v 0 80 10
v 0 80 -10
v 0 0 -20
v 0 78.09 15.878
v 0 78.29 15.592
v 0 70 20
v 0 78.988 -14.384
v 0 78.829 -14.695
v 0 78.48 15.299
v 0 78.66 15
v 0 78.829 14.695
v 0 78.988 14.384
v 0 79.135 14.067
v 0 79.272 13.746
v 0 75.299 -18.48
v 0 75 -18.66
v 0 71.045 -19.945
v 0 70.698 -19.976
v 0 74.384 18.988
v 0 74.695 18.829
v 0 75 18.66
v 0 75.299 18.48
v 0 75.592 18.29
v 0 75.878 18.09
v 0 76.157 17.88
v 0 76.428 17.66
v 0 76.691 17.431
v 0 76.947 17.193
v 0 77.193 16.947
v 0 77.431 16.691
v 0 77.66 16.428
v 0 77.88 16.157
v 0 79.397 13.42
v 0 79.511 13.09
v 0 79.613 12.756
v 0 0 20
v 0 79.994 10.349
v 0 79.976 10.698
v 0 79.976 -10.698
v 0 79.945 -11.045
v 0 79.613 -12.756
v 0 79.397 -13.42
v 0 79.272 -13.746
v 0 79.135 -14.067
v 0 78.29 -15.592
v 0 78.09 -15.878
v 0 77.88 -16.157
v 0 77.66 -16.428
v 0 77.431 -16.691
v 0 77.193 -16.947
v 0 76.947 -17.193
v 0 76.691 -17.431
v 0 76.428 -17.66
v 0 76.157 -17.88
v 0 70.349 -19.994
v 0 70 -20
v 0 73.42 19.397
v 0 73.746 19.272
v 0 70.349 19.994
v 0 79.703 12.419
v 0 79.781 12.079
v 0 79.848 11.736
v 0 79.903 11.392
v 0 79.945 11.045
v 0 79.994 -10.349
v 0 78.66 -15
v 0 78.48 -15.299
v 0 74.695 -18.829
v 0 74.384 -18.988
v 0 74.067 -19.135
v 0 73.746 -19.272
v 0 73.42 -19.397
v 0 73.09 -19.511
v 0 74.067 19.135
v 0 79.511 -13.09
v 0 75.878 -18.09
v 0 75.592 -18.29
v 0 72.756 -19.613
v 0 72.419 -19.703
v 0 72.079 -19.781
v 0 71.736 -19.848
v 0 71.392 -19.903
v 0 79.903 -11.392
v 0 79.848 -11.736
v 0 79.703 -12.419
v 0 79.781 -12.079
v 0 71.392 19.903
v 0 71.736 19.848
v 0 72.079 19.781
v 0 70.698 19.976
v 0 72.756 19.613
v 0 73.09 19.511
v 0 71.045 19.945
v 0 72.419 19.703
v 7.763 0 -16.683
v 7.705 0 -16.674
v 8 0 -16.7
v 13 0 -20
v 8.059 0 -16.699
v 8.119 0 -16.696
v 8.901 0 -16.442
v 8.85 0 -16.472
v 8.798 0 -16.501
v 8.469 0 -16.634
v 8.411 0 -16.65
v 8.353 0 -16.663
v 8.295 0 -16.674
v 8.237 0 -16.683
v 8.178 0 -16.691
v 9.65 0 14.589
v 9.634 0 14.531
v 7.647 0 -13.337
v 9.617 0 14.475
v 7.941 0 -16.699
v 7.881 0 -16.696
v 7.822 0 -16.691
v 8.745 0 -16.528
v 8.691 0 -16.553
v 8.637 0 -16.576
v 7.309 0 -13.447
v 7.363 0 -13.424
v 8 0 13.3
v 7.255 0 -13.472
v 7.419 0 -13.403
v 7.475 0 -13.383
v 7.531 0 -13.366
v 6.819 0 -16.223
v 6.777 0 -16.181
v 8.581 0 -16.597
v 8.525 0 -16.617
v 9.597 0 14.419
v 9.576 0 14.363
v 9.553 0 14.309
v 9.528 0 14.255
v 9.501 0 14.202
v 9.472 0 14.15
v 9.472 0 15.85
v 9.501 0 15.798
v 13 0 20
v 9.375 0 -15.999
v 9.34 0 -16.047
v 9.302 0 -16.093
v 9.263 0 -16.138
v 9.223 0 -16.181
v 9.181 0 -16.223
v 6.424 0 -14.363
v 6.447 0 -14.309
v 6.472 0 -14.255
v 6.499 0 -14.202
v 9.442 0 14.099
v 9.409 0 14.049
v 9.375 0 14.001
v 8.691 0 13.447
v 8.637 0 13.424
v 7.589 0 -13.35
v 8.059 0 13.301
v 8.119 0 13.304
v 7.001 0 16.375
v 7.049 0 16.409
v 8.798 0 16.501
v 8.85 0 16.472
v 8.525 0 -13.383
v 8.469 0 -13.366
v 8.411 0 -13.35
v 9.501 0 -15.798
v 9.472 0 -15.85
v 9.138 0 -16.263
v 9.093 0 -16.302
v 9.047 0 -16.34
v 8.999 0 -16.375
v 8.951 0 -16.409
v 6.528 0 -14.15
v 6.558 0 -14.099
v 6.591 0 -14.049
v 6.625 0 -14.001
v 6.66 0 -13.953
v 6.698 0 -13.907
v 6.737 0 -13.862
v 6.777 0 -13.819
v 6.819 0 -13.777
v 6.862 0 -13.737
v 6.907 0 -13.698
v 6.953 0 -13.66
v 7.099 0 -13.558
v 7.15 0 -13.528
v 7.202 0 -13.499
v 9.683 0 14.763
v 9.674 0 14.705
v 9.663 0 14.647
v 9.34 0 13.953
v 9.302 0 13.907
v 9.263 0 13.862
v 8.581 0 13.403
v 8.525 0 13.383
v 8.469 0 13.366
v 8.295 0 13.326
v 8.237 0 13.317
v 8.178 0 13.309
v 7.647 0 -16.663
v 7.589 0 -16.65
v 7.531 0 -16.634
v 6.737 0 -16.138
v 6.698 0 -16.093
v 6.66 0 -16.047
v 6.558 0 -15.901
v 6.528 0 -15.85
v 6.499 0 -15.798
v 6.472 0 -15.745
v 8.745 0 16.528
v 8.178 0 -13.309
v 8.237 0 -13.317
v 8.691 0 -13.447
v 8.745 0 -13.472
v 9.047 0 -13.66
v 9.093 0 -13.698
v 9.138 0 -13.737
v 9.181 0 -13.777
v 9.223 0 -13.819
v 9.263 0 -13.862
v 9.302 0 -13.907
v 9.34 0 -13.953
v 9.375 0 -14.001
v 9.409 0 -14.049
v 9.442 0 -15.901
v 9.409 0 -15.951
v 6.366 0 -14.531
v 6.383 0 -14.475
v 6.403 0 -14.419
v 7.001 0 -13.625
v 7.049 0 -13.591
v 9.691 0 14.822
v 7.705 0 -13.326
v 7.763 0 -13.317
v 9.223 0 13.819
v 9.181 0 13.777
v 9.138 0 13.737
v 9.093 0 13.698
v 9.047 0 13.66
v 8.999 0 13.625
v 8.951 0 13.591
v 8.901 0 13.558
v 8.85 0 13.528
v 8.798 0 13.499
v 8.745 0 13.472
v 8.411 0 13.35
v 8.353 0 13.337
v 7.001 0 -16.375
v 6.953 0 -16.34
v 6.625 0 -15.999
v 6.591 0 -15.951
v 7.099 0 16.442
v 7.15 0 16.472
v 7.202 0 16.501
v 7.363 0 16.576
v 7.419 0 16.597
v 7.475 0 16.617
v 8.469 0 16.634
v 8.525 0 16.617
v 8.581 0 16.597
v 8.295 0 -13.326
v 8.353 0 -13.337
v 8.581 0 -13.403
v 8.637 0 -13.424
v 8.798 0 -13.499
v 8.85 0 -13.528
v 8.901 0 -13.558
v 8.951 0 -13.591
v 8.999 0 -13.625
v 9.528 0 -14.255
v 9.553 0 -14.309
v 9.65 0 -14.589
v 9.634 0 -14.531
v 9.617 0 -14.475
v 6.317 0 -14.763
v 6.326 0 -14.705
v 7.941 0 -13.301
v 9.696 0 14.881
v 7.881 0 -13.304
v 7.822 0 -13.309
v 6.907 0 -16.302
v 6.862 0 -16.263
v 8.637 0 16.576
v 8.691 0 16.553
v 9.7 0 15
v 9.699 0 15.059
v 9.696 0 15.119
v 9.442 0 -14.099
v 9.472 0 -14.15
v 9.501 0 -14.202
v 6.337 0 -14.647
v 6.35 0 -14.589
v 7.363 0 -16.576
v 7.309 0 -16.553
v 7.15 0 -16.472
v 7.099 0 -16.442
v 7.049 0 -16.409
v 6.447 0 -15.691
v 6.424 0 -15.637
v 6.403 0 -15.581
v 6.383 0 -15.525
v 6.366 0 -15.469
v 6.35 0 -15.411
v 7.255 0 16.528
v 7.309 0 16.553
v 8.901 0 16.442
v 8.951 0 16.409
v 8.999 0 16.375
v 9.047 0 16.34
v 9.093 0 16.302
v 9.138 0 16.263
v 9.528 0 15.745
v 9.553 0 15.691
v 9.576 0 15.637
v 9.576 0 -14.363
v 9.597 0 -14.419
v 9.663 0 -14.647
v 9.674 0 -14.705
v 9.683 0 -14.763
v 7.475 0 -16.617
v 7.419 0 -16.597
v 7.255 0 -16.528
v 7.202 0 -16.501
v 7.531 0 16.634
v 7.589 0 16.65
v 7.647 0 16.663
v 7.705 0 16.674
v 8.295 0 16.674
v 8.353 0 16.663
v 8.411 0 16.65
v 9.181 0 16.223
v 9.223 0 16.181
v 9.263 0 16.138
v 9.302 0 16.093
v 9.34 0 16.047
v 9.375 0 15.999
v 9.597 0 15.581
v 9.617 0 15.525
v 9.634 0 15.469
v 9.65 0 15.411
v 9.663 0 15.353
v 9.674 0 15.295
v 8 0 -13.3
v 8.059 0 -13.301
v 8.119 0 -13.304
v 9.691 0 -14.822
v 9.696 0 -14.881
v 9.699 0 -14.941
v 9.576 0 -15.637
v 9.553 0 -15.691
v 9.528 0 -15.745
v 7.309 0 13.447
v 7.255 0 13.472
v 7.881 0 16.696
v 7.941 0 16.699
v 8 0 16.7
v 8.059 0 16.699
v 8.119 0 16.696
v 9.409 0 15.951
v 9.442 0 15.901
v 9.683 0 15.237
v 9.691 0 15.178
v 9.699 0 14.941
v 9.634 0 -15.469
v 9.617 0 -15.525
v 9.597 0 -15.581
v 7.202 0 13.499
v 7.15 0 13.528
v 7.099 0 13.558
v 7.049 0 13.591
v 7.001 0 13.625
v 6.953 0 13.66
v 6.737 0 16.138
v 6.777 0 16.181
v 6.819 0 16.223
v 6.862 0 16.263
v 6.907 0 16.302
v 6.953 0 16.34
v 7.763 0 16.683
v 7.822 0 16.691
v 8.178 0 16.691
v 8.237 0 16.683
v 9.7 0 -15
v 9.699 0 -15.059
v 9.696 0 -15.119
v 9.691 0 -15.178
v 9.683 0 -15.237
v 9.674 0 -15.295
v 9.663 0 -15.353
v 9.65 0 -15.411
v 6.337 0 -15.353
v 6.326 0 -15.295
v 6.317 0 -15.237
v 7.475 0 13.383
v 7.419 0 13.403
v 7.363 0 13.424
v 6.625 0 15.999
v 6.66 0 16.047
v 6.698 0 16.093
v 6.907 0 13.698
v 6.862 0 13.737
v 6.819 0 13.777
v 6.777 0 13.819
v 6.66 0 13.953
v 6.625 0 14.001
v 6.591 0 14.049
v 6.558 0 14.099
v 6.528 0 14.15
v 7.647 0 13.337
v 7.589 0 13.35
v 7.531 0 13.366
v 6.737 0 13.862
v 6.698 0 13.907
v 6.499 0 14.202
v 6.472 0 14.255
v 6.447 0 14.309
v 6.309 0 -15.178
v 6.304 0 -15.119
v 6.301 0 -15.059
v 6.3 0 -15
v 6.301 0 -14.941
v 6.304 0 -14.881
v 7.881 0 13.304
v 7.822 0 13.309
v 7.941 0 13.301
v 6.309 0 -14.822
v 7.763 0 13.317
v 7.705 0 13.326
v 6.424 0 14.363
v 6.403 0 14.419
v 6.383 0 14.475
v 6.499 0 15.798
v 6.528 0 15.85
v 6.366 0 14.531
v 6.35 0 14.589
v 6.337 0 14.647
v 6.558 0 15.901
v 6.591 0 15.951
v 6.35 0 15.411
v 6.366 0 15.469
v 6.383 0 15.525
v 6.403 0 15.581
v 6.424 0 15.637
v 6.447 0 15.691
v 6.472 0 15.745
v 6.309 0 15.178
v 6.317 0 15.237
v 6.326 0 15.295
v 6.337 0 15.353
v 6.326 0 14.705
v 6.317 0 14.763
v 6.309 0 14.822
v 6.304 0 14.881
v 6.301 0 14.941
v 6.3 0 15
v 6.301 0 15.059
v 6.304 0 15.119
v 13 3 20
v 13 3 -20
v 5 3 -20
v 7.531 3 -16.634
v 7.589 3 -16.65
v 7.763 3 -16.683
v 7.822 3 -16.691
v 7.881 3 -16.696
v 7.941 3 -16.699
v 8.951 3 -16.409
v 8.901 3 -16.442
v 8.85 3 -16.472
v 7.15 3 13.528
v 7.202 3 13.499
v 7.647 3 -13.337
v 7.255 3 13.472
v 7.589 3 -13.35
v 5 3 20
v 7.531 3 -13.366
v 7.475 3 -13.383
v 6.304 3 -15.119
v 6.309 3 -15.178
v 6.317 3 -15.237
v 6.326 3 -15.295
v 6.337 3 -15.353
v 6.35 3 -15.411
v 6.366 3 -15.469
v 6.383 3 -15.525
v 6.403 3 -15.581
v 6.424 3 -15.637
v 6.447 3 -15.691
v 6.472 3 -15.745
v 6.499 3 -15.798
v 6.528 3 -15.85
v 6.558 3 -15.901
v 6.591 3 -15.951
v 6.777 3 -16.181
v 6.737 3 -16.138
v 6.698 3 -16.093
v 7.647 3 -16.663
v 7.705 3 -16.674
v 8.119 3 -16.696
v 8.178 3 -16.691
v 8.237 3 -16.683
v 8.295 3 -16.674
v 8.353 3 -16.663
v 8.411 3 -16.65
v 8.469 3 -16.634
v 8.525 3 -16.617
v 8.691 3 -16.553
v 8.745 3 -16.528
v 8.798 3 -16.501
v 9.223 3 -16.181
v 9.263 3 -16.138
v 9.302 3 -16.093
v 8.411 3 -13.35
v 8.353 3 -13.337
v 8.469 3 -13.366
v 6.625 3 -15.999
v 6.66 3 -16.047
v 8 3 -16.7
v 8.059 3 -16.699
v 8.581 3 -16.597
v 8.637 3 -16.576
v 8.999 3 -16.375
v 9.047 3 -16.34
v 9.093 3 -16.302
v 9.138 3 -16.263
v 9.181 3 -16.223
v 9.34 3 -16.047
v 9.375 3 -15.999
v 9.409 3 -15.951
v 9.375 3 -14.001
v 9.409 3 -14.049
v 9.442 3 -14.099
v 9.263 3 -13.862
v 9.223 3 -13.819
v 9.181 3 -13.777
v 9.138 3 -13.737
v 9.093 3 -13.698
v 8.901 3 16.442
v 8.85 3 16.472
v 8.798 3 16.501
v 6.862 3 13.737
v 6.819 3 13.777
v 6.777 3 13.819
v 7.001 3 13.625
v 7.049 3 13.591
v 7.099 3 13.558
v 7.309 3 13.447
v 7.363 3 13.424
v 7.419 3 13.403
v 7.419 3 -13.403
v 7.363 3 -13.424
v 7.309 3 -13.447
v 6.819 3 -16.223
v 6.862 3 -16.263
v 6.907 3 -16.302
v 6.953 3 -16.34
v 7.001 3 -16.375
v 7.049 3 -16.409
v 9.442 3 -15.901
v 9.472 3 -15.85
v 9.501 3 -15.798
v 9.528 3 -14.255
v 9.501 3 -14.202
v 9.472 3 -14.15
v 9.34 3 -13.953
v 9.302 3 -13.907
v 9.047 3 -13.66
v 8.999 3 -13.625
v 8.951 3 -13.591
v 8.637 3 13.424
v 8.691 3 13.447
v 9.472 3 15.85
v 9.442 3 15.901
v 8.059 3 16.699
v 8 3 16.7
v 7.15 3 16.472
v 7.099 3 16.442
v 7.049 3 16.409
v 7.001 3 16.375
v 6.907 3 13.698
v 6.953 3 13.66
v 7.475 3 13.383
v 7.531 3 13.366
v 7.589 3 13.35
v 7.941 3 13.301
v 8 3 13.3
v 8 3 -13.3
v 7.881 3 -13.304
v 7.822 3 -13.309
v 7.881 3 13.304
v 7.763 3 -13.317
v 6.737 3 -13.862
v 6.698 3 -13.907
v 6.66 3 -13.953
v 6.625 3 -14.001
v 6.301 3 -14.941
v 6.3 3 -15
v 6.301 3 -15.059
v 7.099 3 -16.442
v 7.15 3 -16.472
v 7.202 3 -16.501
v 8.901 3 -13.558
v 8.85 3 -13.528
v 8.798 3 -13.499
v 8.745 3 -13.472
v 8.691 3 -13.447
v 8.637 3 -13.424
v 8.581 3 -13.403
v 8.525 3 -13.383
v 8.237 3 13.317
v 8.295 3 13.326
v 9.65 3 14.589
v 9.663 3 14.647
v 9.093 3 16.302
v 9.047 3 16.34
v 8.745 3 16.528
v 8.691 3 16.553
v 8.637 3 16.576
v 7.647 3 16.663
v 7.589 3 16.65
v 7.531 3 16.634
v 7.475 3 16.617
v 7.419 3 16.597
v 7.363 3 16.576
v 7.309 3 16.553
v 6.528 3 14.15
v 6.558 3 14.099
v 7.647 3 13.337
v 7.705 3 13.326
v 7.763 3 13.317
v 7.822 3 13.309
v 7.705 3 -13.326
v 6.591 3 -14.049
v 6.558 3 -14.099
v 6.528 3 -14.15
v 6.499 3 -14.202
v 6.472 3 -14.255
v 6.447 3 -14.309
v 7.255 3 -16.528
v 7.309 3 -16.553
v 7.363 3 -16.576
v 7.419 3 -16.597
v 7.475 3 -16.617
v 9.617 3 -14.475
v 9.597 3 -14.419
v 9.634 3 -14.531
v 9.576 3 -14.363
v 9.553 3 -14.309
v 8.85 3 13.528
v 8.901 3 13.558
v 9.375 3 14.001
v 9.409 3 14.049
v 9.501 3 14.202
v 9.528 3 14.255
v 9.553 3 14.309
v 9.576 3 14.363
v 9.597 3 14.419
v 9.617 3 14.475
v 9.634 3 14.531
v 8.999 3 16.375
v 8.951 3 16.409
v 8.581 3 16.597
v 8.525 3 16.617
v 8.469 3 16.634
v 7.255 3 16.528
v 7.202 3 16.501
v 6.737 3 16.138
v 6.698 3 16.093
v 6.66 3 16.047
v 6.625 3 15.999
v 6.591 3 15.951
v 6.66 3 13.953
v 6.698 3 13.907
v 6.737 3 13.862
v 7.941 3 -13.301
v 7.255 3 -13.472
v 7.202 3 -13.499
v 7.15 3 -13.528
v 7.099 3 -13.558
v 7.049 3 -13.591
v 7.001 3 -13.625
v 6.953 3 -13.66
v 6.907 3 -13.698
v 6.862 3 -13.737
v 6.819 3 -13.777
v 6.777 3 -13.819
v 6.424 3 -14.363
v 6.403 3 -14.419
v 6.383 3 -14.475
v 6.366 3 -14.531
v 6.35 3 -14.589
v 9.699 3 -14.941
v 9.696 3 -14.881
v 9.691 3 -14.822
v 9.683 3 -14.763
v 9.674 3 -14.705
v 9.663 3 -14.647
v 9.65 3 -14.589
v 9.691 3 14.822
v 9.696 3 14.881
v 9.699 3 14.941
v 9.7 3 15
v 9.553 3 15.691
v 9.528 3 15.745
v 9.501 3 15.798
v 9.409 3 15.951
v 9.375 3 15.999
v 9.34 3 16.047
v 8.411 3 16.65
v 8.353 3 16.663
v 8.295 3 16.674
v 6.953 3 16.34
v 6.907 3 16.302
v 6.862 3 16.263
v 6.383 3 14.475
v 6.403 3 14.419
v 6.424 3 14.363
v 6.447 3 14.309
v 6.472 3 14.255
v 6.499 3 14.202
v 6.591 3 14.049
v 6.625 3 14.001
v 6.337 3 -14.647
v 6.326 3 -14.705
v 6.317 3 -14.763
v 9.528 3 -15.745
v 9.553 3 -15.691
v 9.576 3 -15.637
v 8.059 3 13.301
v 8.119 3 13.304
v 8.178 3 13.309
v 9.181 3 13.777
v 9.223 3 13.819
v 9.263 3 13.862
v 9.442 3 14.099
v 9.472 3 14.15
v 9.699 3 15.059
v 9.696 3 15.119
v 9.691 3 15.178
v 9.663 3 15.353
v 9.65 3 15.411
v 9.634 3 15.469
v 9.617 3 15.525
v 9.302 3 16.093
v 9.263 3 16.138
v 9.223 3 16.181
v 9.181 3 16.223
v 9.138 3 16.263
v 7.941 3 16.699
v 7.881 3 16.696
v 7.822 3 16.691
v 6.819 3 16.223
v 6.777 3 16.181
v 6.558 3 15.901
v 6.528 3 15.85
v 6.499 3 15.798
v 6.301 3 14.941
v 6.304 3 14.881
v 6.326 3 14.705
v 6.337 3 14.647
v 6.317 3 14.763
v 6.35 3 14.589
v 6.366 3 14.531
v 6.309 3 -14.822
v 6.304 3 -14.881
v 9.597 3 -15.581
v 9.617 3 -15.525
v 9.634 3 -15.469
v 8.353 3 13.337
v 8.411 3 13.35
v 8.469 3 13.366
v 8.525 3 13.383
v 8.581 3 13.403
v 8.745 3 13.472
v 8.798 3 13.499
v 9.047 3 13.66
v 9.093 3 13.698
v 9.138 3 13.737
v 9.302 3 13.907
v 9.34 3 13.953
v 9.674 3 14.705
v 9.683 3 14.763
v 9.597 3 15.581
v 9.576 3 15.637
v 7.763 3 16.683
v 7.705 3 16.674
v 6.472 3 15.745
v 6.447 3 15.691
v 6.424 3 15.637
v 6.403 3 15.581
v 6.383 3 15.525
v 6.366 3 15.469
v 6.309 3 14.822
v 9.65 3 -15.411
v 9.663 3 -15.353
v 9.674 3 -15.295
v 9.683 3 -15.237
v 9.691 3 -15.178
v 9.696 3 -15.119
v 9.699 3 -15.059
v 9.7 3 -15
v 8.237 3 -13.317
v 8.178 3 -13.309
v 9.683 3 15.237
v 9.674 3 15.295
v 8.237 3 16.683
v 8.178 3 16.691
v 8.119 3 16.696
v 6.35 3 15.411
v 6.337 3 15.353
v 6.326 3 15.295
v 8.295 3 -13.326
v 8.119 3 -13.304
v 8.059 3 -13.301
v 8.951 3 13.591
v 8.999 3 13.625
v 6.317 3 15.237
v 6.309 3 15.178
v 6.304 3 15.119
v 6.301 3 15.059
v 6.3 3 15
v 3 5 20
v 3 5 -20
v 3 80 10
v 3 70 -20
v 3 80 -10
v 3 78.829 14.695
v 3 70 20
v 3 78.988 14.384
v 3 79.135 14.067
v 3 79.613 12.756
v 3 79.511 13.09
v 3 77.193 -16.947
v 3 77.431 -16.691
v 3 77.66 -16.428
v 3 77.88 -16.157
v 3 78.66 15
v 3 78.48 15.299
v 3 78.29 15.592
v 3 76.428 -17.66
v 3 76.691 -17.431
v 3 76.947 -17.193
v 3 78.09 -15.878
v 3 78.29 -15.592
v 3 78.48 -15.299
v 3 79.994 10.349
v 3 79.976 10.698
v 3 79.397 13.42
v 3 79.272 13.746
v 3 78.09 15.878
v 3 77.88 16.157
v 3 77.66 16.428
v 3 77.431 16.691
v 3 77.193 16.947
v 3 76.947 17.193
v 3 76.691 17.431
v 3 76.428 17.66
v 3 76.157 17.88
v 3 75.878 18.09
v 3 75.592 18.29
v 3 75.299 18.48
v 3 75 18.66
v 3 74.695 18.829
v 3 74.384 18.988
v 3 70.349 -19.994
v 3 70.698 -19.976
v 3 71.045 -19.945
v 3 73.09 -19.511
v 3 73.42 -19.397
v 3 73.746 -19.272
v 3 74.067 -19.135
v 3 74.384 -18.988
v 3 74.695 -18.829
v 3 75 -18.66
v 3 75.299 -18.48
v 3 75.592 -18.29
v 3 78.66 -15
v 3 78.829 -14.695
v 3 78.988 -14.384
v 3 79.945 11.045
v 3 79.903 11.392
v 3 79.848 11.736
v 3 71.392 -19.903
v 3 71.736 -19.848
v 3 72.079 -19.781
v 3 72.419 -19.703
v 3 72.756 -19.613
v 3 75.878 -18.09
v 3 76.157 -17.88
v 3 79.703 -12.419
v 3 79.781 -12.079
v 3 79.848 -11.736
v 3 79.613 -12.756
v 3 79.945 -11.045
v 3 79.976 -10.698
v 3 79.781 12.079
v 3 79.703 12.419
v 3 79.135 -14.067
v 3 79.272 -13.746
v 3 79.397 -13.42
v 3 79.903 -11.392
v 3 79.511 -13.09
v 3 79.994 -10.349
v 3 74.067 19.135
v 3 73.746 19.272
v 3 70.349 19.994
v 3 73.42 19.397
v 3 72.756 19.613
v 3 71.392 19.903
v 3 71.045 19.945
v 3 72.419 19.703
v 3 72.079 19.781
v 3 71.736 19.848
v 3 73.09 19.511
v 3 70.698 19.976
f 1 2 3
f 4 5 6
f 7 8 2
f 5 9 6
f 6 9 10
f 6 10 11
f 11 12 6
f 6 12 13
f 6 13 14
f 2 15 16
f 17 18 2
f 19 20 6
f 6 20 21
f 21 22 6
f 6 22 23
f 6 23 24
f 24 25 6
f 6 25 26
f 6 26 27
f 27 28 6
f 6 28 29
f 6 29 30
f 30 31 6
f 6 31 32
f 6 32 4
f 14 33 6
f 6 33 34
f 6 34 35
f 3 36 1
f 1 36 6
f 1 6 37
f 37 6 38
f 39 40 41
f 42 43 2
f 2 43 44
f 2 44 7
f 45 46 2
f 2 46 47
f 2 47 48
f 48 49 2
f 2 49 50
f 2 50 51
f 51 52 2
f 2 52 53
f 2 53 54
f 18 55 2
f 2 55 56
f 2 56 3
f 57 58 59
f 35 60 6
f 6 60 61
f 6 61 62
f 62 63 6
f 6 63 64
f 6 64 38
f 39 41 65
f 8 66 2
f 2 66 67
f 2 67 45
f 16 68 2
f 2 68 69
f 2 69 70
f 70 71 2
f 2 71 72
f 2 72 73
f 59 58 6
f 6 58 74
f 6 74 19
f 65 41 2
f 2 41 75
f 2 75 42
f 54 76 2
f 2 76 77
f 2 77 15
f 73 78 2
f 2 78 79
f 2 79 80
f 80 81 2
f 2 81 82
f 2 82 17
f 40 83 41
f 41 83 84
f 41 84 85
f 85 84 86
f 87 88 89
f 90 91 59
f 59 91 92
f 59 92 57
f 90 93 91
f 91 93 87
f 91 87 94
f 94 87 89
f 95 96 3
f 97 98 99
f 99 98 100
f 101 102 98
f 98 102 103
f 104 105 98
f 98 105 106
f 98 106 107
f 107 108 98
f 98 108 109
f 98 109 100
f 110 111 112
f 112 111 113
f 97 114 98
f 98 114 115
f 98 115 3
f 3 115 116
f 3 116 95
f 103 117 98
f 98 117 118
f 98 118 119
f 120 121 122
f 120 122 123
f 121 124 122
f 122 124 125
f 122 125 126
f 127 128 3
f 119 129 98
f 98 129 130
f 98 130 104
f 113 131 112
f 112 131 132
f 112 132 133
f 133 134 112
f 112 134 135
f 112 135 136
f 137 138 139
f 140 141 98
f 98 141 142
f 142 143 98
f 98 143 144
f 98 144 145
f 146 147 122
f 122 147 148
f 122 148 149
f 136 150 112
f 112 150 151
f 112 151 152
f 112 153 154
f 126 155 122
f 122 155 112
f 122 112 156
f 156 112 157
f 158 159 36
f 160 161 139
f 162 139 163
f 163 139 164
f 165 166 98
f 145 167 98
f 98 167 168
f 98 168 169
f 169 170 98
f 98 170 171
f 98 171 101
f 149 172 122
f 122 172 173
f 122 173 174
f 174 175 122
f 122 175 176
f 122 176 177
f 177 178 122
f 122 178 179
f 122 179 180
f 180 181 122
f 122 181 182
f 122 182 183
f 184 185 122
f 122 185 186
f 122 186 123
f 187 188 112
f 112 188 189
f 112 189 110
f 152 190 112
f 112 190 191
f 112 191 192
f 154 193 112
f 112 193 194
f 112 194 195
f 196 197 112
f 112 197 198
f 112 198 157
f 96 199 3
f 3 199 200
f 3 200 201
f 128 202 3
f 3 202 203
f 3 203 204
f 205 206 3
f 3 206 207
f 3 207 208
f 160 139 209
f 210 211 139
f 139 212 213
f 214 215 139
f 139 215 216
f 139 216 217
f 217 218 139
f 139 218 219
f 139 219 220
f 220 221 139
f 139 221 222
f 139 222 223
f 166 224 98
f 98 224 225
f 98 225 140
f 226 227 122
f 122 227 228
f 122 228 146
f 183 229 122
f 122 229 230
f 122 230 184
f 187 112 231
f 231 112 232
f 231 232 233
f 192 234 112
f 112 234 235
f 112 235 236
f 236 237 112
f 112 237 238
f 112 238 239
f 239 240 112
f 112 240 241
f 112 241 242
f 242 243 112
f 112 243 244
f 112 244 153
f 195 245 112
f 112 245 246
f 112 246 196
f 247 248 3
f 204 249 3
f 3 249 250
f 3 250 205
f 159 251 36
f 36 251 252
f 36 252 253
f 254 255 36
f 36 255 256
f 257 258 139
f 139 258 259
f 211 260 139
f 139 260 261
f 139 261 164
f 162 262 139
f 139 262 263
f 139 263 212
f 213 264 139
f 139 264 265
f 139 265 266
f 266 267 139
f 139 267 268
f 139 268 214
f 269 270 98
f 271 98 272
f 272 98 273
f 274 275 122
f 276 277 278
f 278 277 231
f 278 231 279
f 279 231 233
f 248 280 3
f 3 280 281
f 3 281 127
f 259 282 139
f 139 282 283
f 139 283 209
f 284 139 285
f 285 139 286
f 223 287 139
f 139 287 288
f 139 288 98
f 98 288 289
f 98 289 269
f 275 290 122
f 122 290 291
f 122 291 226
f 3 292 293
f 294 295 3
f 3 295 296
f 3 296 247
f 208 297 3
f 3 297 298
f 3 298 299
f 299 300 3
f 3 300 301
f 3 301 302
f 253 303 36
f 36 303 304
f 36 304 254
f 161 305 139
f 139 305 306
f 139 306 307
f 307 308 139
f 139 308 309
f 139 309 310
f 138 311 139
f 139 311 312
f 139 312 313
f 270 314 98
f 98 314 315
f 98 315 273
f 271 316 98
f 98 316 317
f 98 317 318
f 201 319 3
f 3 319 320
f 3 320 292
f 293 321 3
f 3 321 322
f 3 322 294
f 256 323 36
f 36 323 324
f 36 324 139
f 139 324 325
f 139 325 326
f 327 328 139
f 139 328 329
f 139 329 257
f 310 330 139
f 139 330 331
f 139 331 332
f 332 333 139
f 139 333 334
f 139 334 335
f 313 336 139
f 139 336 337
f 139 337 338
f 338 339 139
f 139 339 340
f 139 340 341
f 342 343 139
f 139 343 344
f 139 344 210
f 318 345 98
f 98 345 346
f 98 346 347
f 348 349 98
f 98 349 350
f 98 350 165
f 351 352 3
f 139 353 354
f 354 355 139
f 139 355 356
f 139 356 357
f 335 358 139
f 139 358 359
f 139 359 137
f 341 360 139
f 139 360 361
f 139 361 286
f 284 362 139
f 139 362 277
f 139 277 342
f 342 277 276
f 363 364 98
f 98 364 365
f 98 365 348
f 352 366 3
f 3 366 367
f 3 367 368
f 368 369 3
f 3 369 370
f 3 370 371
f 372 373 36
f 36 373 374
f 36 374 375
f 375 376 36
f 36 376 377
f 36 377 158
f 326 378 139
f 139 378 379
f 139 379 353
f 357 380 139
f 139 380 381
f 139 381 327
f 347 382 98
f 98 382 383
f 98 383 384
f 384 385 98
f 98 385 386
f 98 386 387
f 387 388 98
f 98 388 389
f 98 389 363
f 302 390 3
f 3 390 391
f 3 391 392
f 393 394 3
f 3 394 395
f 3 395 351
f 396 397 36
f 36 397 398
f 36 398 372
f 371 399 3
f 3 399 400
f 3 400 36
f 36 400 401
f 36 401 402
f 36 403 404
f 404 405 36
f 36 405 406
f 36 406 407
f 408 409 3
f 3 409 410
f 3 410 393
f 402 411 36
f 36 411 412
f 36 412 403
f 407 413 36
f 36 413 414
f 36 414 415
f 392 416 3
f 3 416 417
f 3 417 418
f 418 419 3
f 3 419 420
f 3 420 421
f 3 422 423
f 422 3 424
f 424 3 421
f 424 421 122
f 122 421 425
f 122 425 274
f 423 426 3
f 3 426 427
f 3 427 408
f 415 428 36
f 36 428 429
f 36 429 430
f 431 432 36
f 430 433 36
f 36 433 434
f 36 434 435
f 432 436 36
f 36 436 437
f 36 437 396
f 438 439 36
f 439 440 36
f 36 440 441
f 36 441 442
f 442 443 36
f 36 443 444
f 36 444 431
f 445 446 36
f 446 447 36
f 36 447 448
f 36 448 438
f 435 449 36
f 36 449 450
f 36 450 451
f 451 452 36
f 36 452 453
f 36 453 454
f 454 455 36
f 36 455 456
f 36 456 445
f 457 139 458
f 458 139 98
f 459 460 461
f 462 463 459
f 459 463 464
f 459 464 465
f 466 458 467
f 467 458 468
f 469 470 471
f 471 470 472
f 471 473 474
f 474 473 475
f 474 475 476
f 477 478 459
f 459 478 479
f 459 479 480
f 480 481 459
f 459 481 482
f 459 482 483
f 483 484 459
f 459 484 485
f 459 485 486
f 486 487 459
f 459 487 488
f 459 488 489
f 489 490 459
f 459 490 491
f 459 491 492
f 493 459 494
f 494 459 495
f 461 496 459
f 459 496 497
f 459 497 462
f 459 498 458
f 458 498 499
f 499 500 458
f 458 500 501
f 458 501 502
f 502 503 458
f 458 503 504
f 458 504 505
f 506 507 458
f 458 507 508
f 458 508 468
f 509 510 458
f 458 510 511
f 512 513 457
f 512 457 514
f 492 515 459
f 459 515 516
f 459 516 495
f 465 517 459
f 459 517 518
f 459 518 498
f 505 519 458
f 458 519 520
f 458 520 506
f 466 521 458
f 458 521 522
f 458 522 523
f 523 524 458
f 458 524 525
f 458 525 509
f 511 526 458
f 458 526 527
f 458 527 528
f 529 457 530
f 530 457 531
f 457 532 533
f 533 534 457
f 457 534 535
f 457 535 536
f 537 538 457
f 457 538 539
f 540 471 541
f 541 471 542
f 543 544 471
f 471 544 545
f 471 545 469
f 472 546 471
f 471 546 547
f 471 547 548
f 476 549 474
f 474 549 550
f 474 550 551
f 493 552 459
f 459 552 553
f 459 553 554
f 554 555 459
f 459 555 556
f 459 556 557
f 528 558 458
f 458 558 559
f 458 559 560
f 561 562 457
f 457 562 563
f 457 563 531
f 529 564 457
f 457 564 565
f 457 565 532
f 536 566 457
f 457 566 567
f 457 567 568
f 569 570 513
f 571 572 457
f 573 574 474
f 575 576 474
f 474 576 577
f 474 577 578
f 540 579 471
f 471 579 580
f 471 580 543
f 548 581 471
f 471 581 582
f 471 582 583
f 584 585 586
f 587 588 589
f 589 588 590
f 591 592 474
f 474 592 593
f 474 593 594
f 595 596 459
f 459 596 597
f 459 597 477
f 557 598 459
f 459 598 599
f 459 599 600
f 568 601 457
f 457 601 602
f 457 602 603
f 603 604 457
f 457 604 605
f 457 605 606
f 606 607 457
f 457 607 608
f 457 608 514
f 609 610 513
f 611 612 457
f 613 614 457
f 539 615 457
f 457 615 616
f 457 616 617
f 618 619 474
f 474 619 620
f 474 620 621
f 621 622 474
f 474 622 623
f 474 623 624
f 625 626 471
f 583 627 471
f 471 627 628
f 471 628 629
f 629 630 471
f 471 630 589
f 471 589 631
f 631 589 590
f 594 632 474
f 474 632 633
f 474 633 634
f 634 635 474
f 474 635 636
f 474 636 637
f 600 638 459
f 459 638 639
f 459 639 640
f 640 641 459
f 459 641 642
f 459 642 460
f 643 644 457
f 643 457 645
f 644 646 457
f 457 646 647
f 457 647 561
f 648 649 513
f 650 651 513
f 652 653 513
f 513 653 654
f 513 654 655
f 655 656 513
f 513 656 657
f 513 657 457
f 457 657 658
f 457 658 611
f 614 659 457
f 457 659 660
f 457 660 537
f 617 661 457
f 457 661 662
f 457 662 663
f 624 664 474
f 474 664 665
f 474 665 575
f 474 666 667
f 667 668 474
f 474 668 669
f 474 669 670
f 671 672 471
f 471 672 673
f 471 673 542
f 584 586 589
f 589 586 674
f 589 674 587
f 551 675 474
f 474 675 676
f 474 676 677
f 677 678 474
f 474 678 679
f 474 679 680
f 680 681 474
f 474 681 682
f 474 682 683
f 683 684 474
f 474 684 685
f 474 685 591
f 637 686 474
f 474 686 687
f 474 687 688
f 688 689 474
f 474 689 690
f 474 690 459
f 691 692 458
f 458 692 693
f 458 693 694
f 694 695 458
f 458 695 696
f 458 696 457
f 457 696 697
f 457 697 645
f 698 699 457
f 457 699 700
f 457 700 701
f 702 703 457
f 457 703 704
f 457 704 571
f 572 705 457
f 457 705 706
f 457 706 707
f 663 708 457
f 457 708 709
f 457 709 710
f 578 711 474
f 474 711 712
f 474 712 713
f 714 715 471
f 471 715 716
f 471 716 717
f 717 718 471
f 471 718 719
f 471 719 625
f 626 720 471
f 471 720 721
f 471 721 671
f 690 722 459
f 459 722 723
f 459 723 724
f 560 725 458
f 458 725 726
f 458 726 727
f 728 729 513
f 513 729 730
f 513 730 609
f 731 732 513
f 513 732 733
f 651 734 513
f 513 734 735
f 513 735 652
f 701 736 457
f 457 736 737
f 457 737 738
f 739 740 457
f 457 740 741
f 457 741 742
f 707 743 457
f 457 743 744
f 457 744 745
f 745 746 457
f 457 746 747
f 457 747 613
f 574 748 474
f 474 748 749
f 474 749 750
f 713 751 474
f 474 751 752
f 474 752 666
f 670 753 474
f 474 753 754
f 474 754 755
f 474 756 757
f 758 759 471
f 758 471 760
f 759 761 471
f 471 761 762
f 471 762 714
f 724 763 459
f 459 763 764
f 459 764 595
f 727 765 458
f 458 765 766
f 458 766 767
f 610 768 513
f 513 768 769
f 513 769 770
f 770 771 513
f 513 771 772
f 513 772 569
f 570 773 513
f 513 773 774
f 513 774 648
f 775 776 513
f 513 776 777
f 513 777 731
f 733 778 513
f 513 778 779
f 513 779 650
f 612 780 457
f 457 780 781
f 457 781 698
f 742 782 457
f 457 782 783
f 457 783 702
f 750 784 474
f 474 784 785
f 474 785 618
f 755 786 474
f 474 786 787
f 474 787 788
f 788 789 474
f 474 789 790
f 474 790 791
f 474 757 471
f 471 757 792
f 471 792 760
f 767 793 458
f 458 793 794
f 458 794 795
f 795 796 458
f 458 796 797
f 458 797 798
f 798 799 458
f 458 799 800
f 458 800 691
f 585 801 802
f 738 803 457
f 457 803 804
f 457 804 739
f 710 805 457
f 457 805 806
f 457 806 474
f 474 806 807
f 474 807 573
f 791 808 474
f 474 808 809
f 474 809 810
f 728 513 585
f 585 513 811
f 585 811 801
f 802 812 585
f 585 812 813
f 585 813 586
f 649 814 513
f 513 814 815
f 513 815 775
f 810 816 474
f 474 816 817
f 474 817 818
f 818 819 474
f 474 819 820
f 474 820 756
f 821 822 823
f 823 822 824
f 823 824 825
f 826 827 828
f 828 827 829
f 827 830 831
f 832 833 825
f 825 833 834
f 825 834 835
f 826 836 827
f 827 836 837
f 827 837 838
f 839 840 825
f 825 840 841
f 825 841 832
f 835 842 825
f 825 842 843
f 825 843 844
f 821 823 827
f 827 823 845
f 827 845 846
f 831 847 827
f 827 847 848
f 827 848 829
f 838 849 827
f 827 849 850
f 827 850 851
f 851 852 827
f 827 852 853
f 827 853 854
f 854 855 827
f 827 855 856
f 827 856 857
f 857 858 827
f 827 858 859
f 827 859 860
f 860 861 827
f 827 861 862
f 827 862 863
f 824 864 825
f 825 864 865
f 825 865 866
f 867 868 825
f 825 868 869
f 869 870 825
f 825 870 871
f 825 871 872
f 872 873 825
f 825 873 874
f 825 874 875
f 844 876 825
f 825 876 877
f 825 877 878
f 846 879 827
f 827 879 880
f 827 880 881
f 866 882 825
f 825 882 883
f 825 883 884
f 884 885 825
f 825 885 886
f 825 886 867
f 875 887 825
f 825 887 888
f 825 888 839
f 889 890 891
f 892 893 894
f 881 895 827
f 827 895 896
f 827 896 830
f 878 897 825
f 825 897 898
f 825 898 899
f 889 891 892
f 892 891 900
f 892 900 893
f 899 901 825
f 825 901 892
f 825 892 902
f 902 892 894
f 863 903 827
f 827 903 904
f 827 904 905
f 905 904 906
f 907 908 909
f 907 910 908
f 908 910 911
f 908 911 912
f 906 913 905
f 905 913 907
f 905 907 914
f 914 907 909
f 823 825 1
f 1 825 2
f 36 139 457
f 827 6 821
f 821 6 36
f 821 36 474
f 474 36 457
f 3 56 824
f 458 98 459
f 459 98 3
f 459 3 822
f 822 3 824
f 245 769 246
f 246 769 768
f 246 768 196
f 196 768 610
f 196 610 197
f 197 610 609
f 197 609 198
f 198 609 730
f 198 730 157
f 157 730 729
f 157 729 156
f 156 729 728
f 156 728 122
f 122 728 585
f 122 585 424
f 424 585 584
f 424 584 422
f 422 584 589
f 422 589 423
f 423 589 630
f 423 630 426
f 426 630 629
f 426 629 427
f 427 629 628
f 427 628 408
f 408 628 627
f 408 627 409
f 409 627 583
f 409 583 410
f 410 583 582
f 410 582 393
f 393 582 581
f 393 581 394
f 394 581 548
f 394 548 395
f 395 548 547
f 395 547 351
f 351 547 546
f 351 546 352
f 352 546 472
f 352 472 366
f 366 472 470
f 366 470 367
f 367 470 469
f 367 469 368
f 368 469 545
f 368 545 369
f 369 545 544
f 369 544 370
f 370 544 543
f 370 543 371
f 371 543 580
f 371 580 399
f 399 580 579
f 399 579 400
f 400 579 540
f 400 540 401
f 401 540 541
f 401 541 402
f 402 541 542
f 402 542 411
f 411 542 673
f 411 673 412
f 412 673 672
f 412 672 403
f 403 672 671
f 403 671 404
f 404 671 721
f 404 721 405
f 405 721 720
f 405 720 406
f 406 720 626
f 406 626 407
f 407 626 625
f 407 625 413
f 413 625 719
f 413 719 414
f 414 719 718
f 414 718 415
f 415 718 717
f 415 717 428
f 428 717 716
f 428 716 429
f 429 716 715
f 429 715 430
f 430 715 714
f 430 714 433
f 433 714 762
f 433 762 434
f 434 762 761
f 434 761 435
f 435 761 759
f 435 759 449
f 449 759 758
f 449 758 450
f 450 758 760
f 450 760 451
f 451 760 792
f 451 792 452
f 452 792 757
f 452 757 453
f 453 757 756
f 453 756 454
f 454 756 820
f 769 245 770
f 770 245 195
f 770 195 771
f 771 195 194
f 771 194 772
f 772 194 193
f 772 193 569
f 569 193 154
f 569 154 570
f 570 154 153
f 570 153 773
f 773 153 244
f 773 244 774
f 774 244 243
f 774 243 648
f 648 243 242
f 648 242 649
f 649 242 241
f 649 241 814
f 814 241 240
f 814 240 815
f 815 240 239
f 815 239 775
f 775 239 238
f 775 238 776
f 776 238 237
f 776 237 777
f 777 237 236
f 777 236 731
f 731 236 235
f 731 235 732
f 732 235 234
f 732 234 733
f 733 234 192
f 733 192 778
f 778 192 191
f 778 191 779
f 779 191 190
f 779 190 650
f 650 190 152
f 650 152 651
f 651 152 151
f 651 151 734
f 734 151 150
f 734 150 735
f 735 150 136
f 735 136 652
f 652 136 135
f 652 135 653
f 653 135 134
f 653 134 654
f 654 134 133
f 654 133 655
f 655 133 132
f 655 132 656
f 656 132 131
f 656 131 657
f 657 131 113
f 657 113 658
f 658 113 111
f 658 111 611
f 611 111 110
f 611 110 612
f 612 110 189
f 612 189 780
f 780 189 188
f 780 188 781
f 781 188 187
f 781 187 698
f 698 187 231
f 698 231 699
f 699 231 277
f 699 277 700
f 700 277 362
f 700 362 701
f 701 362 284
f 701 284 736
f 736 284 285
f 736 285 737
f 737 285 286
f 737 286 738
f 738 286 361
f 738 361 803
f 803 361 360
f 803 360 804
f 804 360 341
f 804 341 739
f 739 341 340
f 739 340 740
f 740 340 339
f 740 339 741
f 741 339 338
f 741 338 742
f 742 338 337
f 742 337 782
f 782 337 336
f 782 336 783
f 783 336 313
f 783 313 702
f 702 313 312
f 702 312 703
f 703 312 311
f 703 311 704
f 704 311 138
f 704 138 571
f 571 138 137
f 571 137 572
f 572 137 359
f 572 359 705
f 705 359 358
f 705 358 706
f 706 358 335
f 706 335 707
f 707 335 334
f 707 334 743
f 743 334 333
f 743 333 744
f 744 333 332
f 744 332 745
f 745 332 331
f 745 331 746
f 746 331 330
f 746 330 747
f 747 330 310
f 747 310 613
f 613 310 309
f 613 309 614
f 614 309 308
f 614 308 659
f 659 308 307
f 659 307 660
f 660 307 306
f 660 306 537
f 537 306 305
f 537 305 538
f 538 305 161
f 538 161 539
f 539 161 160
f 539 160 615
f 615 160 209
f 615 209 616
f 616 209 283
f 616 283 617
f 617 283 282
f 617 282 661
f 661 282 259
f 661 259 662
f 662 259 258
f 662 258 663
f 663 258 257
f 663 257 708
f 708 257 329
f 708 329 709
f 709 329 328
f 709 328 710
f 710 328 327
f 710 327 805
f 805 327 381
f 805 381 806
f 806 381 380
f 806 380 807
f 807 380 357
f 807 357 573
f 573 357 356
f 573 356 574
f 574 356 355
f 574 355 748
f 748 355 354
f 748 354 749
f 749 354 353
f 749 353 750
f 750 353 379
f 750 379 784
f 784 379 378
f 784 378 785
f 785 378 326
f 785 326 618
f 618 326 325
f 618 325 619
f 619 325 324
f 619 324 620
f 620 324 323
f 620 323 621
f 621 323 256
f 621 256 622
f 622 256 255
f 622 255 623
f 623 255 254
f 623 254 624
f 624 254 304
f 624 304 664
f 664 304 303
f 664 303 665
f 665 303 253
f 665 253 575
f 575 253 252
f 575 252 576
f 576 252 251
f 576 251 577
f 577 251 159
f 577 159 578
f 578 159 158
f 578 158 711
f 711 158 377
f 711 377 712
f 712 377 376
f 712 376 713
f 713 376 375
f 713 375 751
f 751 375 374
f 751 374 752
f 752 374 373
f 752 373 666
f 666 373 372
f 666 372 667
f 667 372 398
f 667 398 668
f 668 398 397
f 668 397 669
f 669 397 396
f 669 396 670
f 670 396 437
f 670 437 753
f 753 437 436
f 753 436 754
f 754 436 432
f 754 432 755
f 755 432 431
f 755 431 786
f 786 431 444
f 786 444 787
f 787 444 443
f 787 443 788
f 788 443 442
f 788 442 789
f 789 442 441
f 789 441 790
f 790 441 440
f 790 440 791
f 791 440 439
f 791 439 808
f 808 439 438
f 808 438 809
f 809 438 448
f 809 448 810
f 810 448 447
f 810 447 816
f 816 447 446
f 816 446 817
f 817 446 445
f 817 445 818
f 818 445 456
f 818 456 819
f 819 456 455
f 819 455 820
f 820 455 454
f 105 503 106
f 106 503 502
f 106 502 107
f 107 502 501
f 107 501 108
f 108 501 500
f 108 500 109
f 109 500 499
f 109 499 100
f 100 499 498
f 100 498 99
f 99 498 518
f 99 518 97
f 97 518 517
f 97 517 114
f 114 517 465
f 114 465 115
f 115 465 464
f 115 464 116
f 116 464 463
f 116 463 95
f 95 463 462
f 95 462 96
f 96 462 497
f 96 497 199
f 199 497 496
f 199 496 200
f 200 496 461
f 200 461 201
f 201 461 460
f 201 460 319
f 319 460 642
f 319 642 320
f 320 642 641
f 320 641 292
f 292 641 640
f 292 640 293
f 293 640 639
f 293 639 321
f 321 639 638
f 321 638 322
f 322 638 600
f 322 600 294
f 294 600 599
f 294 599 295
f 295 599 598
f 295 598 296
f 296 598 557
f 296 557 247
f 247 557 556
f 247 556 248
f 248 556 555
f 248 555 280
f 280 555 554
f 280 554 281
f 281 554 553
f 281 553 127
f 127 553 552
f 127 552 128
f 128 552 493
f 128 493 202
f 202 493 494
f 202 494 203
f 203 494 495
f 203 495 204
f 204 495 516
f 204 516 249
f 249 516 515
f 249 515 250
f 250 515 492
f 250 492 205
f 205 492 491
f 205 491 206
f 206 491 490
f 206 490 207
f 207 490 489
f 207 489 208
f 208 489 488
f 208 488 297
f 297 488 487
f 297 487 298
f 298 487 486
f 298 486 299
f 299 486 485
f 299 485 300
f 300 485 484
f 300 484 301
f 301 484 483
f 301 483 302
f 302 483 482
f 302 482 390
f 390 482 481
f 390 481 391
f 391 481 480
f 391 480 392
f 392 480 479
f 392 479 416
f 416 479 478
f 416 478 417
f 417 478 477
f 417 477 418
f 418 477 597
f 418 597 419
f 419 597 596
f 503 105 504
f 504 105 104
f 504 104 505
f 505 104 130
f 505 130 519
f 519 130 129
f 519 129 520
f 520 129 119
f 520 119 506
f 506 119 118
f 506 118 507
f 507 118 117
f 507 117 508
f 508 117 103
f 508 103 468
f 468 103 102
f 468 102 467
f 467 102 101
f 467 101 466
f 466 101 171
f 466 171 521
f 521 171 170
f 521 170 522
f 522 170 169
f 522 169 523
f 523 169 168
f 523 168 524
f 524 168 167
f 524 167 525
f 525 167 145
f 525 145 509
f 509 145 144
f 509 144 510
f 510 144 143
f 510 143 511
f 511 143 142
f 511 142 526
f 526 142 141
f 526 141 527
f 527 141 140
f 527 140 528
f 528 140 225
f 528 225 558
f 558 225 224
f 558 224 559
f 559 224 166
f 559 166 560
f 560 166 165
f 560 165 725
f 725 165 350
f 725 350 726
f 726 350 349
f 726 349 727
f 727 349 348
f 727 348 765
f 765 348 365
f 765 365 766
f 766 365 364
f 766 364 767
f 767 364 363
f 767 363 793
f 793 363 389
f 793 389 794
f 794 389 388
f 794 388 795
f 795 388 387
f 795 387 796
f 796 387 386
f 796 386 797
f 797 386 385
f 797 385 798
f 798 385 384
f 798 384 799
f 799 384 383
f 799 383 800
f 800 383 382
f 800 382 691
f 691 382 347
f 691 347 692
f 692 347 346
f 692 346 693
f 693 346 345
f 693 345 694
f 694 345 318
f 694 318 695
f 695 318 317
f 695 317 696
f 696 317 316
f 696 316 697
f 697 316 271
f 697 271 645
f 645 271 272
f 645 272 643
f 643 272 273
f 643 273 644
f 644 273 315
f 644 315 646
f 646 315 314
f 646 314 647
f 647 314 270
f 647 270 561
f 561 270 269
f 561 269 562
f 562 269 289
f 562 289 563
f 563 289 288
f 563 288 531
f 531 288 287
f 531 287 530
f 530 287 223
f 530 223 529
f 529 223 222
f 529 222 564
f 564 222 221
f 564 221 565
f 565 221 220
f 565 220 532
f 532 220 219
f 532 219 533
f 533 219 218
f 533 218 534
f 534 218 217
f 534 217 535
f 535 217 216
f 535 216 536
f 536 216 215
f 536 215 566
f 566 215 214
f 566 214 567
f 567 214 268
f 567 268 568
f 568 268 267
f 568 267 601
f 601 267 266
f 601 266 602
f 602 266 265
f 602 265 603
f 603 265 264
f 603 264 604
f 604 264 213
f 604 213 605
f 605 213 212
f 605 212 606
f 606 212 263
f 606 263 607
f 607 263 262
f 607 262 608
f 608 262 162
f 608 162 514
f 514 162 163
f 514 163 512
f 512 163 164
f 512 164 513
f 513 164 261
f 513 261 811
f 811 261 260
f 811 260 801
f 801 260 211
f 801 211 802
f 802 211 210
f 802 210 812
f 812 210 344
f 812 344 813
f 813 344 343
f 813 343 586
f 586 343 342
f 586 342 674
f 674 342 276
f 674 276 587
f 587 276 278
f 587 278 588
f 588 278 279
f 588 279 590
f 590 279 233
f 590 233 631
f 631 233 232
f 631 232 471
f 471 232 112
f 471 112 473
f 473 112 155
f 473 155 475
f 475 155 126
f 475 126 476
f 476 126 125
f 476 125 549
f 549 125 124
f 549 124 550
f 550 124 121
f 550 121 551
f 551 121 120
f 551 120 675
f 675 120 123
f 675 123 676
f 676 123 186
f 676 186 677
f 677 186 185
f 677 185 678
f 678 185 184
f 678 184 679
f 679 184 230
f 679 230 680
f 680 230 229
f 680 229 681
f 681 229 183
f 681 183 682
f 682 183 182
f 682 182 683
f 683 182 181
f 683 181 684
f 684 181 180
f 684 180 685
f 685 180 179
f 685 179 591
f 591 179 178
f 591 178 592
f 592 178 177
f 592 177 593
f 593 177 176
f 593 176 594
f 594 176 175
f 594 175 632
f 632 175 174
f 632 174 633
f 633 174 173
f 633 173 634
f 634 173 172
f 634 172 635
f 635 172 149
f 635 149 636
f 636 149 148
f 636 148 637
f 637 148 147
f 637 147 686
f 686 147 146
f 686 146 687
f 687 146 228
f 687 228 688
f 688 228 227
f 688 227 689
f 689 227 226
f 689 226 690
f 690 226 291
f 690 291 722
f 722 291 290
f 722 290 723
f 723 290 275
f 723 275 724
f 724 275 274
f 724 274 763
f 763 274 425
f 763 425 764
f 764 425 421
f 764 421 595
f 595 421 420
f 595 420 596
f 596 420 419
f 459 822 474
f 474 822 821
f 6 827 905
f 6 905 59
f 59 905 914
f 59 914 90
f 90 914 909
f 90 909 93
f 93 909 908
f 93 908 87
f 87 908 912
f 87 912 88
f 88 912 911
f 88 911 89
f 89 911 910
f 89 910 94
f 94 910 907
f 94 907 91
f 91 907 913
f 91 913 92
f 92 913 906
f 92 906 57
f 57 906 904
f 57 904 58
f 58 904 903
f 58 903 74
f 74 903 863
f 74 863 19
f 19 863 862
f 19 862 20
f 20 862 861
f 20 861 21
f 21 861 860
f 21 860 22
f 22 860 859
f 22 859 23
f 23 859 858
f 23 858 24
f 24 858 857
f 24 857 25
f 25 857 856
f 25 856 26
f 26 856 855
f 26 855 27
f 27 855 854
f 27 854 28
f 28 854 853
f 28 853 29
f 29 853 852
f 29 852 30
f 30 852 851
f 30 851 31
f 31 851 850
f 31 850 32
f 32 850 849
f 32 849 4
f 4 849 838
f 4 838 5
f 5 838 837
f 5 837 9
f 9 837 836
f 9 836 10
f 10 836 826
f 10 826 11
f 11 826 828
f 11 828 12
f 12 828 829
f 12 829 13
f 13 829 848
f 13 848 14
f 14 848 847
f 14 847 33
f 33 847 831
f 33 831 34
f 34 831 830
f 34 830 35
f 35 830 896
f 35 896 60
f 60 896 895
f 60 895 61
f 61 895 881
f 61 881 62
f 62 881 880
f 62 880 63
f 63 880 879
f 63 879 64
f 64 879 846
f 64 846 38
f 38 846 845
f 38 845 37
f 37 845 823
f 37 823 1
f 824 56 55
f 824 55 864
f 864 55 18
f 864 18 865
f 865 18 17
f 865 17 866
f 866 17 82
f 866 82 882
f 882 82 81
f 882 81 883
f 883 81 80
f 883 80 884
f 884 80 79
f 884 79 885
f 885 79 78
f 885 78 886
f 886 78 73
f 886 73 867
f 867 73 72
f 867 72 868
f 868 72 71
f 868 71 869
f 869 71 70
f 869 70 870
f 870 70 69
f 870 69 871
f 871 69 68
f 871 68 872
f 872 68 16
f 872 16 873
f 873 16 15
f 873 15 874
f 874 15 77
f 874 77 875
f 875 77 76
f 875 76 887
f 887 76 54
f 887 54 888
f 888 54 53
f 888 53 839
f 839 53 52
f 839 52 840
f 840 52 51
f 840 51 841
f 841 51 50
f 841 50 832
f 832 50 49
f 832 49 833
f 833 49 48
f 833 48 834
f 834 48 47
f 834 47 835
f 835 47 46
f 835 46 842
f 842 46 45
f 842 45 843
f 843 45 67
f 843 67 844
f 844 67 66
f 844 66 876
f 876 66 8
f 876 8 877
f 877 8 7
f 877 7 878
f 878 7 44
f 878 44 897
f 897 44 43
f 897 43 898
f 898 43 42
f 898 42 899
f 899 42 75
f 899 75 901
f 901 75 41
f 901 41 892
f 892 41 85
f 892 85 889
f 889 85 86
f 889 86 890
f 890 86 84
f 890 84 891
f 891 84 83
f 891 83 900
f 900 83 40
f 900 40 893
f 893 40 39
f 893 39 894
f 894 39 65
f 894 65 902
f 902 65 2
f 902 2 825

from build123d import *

# Parameters (mm, degrees)
BOSS_EXTRUDE1_DEPTH = 20
SKETCH2_R           = 1.7
CUT_EXTRUDE1_DEPTH  = 40
CHAMFER1_SIZE       = 2
FILLET1_R           = 10


with BuildPart() as part:
    # Sketch1 → Boss-Extrude1 (new, symmetric)
    with BuildSketch(Plane.XY):
        Polygon((0, 0), (13, 0), (13, 3), (3, 3), (3, 80), (0, 80), align=None)
    extrude(amount=BOSS_EXTRUDE1_DEPTH, both=True)

    # Sketch2 → Cut-Extrude1 (cut)
    with BuildSketch(Plane(origin=(0, 3, 0), x_dir=(1, 0, 0), z_dir=(0, 1, 0))):
        with Locations((8, 15)):
            Circle(SKETCH2_R)
        with Locations((8, -15)):
            Circle(SKETCH2_R)
    extrude(amount=-CUT_EXTRUDE1_DEPTH, mode=Mode.SUBTRACT)

    # Chamfer1
    chamfer1_edges = [part.edges().sort_by_distance(p)[0] for p in [
        (3, 3, 0),
    ]]
    chamfer(chamfer1_edges, length=CHAMFER1_SIZE)

    # Fillet1
    fillet1_edges = [part.edges().sort_by_distance(p)[0] for p in [
        (1.5, 80, 20),
        (1.5, 80, -20),
    ]]
    fillet(fillet1_edges, radius=FILLET1_R)


solid = part.part
